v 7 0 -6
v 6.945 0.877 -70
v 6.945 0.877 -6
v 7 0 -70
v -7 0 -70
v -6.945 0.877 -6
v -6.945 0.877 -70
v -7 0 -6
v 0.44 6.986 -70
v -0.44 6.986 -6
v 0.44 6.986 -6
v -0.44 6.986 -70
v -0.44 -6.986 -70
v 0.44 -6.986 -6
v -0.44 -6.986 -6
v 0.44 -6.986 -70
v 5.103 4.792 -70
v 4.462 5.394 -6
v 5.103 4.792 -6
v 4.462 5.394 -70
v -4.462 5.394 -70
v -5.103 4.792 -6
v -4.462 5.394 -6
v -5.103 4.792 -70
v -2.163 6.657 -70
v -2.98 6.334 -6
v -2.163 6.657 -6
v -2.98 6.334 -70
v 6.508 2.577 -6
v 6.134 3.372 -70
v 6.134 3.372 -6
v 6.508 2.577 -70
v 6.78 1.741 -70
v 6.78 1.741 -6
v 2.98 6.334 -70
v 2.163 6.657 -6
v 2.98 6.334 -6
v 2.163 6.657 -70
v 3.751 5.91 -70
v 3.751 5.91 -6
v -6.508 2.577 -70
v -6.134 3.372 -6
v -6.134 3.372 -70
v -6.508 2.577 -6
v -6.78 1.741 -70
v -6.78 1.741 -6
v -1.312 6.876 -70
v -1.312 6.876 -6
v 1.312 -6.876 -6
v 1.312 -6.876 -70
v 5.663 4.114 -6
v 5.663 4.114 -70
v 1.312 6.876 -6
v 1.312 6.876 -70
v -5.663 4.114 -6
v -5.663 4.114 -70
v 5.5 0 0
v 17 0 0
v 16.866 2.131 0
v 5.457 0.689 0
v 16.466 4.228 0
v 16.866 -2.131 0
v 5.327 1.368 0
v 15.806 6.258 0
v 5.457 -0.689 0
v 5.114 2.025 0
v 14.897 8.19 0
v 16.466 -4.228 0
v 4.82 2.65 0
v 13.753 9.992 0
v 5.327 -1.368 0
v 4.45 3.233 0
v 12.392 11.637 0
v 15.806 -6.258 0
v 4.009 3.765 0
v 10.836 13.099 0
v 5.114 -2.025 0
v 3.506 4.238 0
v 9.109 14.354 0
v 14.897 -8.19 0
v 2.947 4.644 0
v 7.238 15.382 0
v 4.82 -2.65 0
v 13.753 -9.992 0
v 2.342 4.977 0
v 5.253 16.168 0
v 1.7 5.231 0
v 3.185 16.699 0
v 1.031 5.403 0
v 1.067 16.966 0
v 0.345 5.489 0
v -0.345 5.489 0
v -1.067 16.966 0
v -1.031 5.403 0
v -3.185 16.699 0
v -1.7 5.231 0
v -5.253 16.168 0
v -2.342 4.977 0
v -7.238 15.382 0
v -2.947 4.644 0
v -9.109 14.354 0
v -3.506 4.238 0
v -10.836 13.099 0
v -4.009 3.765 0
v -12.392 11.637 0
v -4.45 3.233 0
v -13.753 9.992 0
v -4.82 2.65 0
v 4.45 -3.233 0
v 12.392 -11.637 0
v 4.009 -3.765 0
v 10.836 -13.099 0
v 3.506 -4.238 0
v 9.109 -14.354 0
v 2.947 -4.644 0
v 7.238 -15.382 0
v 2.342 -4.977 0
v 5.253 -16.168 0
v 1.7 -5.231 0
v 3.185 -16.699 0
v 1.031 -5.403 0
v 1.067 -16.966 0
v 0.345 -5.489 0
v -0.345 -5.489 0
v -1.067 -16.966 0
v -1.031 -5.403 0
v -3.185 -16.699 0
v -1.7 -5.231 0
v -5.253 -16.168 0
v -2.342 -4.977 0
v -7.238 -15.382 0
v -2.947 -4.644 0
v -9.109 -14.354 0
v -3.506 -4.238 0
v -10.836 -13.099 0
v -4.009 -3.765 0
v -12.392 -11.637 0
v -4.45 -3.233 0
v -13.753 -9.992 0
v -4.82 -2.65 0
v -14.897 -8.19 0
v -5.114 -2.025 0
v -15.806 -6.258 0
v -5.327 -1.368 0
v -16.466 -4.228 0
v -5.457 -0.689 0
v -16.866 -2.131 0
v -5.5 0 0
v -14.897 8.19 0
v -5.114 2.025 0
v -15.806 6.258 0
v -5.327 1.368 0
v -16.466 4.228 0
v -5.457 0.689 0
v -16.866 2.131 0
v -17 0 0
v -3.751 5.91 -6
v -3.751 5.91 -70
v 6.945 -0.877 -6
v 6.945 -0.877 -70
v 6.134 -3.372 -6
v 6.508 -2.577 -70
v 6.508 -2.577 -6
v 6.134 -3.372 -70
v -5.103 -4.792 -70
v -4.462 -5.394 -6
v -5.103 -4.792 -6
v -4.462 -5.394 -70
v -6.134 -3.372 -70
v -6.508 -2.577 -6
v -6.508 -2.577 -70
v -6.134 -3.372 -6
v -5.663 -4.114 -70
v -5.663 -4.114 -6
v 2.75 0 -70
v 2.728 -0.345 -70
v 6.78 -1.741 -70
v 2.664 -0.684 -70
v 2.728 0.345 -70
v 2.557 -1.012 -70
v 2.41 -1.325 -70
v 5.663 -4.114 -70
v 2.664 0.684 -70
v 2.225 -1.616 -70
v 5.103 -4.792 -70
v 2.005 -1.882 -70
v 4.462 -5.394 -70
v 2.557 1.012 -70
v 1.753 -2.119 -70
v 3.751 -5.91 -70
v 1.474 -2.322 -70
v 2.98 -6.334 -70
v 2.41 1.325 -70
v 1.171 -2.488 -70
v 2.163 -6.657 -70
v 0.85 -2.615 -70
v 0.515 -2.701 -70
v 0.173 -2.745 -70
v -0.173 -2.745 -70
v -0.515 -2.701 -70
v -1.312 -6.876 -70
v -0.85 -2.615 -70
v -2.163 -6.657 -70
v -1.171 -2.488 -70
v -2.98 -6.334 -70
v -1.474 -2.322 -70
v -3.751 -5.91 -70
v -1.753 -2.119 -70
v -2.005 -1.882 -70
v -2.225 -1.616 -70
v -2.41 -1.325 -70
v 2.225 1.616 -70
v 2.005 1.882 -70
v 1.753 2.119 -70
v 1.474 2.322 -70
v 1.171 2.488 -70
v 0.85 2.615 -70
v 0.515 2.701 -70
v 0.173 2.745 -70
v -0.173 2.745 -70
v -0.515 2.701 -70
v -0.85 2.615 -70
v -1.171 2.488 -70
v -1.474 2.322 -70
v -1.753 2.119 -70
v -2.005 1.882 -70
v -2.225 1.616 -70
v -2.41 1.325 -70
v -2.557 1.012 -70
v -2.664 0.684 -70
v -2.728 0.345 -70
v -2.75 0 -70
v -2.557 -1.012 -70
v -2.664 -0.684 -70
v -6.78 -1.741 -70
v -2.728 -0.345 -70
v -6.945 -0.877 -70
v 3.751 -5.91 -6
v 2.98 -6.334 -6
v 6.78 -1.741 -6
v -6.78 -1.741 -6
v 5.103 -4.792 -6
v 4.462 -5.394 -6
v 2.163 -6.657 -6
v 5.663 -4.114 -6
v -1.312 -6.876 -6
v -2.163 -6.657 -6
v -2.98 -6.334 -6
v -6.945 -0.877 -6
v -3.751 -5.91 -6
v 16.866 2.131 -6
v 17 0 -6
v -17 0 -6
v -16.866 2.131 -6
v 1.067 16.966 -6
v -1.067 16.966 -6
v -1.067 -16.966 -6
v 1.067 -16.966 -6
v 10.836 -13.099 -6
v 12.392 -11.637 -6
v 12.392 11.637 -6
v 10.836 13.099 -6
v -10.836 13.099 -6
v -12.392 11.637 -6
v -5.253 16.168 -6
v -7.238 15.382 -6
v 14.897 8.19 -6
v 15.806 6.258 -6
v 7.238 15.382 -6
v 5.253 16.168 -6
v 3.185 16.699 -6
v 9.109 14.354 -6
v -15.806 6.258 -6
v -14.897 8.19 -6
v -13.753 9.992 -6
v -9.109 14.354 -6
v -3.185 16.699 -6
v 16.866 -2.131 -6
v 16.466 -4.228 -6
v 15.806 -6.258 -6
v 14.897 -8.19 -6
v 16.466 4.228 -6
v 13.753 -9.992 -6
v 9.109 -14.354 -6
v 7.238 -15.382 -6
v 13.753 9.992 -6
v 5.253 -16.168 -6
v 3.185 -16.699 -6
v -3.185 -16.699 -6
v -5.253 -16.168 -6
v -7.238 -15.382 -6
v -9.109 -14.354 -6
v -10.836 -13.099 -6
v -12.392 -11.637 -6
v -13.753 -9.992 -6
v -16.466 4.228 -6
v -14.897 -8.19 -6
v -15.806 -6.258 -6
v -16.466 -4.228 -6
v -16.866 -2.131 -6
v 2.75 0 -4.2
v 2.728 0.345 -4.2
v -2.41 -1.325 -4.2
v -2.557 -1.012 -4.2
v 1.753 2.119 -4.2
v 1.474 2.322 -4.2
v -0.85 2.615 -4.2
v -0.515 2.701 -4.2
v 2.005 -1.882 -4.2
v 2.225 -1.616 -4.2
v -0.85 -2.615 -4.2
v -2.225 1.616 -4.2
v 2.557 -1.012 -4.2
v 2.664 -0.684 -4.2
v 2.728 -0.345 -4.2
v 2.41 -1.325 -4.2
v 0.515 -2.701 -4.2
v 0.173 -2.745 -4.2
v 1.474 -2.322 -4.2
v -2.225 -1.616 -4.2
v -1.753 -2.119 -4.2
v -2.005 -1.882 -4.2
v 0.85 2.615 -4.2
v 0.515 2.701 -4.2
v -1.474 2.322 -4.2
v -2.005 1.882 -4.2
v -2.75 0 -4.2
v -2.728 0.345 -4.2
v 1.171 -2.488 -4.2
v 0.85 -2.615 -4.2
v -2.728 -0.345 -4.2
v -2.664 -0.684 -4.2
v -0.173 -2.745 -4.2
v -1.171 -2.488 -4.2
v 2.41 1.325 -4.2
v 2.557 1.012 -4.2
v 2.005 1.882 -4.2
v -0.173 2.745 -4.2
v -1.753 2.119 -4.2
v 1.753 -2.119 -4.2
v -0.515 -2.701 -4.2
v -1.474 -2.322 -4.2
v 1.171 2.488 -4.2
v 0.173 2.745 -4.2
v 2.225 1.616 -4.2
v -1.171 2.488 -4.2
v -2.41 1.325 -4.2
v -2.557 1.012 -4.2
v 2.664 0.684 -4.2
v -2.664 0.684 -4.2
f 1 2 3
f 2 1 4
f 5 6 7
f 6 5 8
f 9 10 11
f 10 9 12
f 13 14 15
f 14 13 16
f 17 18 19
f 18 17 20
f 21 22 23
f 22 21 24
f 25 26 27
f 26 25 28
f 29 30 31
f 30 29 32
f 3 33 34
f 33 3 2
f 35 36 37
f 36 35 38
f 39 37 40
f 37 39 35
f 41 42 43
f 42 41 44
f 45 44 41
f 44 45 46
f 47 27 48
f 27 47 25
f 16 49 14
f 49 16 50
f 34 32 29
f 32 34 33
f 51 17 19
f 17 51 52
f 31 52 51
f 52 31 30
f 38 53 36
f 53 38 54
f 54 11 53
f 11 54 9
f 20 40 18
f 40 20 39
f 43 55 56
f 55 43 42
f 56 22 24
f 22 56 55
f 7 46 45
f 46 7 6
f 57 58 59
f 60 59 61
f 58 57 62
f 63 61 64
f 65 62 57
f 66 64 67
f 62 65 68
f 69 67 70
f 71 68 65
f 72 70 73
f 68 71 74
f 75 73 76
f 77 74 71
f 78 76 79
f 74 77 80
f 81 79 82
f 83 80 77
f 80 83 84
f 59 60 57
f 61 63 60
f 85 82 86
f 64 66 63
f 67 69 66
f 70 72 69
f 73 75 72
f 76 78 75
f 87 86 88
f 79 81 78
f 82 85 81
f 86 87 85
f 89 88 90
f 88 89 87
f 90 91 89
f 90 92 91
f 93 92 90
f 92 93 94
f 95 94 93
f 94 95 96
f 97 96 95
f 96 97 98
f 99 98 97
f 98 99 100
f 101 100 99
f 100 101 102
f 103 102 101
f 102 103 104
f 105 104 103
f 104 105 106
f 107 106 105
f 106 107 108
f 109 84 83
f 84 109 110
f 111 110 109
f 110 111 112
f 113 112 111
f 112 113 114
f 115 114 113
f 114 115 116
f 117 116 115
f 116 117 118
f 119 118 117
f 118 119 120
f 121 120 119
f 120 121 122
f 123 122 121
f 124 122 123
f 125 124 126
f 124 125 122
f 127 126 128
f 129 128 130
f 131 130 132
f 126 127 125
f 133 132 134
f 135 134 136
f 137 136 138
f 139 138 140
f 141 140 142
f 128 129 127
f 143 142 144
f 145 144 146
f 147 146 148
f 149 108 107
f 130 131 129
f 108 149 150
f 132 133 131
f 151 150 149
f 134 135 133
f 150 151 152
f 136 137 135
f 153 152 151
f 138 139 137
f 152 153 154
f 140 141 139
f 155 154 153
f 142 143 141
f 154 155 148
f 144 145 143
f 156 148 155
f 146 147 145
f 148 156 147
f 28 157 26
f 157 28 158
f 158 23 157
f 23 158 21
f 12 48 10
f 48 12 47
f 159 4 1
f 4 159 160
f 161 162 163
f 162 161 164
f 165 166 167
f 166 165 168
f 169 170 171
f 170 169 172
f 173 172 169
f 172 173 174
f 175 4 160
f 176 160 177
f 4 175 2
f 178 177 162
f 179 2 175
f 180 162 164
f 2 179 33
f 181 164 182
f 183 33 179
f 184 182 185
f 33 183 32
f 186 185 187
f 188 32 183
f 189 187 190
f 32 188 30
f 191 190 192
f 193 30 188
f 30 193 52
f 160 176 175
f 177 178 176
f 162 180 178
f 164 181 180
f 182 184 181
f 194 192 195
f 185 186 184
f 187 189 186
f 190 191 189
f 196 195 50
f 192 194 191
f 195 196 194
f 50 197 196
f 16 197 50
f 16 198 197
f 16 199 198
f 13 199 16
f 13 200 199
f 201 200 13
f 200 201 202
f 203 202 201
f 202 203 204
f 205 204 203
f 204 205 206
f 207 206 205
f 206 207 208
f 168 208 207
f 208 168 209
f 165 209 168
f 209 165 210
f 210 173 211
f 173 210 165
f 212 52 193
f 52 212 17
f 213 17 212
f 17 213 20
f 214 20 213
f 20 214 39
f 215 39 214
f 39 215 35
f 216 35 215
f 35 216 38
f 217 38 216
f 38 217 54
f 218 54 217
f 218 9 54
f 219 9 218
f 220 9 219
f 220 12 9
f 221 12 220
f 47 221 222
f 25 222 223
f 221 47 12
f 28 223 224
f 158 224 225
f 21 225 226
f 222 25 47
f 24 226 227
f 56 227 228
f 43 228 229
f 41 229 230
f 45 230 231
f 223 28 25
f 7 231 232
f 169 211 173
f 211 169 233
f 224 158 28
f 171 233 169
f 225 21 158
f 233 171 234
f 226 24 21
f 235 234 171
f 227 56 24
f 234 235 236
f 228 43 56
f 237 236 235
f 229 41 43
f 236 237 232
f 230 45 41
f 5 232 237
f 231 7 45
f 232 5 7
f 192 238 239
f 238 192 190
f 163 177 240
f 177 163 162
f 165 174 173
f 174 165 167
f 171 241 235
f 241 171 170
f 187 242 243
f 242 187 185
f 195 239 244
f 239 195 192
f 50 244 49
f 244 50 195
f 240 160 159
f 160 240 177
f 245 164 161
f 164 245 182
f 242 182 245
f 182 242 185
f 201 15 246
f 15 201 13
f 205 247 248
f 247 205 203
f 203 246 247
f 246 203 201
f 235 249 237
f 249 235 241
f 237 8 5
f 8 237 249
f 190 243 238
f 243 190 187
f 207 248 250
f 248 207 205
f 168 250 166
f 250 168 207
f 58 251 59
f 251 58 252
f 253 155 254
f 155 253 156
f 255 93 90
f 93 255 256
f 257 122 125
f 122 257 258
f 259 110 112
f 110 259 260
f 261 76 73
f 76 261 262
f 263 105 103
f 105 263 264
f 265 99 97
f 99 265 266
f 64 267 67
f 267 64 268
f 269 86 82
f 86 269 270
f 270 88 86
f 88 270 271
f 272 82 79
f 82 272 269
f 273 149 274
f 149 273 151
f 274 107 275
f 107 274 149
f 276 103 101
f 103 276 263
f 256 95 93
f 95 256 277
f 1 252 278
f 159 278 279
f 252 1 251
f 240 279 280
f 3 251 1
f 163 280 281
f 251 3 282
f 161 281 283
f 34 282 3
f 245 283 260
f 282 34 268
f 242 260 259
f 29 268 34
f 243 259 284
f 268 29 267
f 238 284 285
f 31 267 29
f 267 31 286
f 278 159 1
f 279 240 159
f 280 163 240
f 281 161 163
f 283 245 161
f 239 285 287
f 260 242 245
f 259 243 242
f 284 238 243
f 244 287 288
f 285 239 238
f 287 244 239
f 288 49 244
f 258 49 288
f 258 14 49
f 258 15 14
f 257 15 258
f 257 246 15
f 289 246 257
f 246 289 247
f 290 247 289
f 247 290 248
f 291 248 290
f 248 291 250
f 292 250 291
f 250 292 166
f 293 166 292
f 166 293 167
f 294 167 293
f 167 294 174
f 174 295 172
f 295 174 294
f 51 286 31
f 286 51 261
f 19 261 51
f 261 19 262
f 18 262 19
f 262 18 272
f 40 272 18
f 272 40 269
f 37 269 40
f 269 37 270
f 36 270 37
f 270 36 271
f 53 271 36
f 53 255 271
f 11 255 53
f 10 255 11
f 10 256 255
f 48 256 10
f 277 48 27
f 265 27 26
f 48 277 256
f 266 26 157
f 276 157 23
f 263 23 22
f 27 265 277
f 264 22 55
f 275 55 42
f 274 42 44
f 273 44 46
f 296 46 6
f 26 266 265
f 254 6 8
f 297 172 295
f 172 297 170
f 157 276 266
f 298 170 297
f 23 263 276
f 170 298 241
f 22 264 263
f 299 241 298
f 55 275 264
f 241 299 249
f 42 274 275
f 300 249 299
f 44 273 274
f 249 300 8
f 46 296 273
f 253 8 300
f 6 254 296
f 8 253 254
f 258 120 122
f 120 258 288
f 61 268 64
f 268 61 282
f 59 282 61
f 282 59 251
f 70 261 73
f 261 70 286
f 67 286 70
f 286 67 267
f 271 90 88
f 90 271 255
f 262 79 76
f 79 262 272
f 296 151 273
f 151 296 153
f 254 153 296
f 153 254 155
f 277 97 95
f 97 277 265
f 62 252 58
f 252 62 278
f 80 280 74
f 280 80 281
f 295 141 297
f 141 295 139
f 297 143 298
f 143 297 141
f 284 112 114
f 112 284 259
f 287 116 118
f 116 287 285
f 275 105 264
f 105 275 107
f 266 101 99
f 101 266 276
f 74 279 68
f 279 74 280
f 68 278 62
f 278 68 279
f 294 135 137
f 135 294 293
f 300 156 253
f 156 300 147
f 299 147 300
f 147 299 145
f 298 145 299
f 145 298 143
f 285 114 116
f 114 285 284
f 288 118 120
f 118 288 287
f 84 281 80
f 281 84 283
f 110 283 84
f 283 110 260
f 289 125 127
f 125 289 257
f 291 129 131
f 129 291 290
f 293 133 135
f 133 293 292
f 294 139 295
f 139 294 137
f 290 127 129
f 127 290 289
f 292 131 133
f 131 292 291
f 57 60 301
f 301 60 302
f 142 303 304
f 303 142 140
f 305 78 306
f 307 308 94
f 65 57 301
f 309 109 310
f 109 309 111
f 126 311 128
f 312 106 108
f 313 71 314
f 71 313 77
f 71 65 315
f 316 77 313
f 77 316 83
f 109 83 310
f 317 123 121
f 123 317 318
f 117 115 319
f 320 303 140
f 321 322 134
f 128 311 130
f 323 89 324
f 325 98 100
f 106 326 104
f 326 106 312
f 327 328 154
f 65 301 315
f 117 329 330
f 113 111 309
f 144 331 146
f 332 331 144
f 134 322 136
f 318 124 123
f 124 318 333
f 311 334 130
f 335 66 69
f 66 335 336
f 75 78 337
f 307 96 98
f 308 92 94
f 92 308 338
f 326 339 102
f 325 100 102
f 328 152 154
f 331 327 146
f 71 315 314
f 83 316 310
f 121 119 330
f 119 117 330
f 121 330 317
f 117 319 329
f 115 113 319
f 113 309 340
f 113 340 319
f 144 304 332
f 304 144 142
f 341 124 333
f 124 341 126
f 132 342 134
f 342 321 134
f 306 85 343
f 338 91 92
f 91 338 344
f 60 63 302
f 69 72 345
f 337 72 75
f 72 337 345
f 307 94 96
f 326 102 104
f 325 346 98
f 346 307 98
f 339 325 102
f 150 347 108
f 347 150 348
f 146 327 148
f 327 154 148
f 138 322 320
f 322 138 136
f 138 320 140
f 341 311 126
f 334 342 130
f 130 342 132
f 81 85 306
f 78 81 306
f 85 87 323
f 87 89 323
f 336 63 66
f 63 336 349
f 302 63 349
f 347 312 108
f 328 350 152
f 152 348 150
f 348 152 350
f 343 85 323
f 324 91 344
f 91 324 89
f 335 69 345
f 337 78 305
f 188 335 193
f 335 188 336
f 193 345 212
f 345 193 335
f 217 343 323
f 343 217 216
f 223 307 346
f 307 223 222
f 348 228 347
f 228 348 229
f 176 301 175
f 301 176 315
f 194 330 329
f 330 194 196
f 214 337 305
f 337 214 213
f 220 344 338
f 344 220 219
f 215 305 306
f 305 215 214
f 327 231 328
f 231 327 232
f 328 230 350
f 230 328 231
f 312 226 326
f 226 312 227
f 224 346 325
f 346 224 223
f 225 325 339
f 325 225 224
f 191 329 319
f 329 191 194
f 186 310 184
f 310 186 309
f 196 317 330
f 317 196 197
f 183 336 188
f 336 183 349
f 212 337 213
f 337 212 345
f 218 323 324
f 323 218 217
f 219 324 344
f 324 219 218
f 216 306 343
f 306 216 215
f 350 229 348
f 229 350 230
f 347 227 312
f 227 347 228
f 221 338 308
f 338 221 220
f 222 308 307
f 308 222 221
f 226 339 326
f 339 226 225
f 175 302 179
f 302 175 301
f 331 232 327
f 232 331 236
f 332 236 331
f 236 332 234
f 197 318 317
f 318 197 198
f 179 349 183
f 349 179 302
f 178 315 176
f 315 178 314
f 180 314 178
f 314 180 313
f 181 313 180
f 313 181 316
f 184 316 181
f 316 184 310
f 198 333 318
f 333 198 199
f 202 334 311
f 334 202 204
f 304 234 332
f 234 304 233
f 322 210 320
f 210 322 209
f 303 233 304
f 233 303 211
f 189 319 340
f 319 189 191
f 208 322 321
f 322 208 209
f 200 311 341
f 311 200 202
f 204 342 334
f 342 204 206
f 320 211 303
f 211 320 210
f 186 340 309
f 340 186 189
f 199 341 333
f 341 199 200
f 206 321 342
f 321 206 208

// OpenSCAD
$fn = 50;


difference() {
	union() {
		translate(v = [0, 0, -70.0000000000]) {
			cylinder(h = 70, r = 7.0000000000);
		}
		translate(v = [0, 0, -6.0000000000]) {
			cylinder(h = 6, r = 17.0000000000);
		}
	}
	union() {
		translate(v = [0, 0, 0]) {
			rotate(a = [0, 0, 0]) {
				difference() {
					union() {
						#translate(v = [0, 0, -70.0000000000]) {
							cylinder(h = 70, r = 2.2500000000);
						}
						#translate(v = [0, 0, -4.2000000000]) {
							cylinder(h = 4.2000000000, r1 = 2.7500000000, r2 = 5.5000000000);
						}
						#translate(v = [0, 0, -70.0000000000]) {
							cylinder(h = 70, r = 2.7500000000);
						}
						#translate(v = [0, 0, -70.0000000000]) {
							cylinder(h = 70, r = 2.2500000000);
						}
					}
					union();
				}
			}
		}
	}
}
